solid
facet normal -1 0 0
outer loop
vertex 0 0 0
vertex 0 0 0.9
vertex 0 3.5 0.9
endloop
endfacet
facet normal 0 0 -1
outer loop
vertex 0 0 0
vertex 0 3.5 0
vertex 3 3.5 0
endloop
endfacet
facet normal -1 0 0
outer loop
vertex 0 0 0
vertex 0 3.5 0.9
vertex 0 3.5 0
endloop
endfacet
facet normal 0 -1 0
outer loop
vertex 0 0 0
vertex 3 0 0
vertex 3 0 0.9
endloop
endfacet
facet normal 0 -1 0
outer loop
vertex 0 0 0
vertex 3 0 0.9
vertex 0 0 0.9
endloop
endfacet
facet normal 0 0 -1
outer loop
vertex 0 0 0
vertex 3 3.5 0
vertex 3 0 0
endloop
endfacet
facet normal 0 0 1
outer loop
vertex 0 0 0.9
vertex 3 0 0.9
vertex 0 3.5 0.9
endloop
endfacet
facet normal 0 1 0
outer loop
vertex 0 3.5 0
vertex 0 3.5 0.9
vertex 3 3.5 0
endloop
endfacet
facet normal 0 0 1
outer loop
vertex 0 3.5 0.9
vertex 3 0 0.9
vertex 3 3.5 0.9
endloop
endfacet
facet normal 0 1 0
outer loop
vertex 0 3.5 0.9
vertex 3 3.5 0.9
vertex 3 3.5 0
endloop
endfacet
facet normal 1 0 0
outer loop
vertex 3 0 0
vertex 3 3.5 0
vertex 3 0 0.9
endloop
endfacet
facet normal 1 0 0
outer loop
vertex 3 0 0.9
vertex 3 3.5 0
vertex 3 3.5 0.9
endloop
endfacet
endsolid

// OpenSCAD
/* Warning, this is a very basic generator with a lot of approximation 
input data : [VQFN, MZA, 3.0x3.5x0.9mm, 16, , A, C04-01100A]
generated by com.zoubworld.electronics.cad.model3d.Basic
Date : Sun Feb 15 10:50:49 CET 2026
*/

//body
color("black")
translate([0,0,0])
cube([3.0,3.5,0.9], center=false);
